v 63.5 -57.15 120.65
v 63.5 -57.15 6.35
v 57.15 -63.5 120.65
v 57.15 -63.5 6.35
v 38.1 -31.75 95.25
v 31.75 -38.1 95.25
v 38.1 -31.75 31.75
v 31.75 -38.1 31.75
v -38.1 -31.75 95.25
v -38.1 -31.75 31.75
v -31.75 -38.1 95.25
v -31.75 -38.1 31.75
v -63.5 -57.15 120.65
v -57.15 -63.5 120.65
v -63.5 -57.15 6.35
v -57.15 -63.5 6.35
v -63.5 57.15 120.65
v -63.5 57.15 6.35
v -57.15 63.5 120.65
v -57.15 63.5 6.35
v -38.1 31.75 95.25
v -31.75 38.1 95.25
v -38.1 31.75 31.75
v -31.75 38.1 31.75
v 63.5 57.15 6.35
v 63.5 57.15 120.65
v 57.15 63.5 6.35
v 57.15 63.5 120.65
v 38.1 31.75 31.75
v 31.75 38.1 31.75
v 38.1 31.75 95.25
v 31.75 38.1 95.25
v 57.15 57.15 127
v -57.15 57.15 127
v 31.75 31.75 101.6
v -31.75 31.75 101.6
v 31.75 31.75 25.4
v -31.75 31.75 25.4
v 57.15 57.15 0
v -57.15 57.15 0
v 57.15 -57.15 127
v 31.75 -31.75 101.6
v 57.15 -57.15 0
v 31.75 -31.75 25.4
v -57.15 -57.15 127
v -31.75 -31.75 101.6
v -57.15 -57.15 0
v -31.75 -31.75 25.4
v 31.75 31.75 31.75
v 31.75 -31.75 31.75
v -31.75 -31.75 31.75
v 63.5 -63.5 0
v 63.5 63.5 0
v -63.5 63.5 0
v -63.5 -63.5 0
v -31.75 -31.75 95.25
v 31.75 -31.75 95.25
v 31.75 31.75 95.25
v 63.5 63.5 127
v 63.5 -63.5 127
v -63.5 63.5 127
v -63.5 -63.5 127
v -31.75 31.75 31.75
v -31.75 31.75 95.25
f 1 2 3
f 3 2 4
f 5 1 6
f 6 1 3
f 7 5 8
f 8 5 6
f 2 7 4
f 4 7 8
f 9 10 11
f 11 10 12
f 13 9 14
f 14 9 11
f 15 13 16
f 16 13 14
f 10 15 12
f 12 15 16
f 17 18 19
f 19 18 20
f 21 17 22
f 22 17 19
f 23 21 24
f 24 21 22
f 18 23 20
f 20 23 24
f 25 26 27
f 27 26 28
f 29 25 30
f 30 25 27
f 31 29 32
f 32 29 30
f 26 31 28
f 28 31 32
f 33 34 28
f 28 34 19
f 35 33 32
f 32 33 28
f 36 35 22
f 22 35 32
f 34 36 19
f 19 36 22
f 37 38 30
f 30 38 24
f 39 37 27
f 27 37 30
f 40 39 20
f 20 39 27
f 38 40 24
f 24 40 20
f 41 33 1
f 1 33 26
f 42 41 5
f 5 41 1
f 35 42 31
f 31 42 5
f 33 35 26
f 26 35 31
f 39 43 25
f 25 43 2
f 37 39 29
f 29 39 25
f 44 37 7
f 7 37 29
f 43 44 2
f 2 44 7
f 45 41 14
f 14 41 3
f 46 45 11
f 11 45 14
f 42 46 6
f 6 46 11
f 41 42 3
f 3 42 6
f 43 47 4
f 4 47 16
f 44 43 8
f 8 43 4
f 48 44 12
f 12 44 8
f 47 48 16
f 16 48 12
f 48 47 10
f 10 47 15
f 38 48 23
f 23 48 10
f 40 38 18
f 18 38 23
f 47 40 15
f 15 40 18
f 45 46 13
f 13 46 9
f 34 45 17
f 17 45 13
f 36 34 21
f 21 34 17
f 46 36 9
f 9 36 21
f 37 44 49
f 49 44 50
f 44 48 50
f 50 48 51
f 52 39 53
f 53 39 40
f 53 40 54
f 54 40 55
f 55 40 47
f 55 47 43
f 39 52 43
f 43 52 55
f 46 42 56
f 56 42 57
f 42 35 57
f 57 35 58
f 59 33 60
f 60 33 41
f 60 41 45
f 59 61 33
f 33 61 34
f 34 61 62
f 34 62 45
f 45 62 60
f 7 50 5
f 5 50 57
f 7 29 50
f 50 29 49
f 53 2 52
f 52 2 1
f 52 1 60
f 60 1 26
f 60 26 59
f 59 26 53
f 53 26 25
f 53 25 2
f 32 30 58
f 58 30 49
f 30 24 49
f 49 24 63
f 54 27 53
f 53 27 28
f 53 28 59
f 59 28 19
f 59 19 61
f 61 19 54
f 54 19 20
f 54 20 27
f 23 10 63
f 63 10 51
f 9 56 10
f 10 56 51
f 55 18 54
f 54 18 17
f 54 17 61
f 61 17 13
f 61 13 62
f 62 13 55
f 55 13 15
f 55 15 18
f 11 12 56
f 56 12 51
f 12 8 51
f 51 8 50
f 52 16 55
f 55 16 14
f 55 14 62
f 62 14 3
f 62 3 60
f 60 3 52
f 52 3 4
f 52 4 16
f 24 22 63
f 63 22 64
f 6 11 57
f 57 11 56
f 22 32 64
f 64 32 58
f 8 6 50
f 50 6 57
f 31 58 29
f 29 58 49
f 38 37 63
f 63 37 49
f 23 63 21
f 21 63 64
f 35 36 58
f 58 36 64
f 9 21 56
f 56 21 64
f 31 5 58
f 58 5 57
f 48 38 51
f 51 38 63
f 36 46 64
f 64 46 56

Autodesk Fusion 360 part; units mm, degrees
sketch "Sketch1" plane through (0, 0, 0) normal (0, 0, 1) x (1, 0, 0)
  line L0 (63.5, 63.5) -> (-63.5, 63.5)
  line L1 (-63.5, 63.5) -> (-63.5, -63.5)
  line L2 (-63.5, -63.5) -> (63.5, -63.5)
  line L3 (63.5, -63.5) -> (63.5, 63.5)
  line L4 (63.5, 63.5) -> (-63.5, -63.5) construction
  line L5 (-63.5, 63.5) -> (63.5, -63.5) construction
extrude "Extrude1" add sketch "Sketch1" along normal blind 127
sketch "Sketch2" plane through (0, 0, 127) normal (0, 0, 1) x (-1, 0, 0)
  line L0 (-63.5, 63.5) -> (-63.5, -63.5)
  line L1 (-63.5, -63.5) -> (63.5, -63.5)
  line L2 (63.5, -63.5) -> (63.5, 63.5)
  line L3 (63.5, 63.5) -> (-63.5, 63.5)
  line L4 (31.75, 31.75) -> (-31.75, 31.75)
  line L5 (-31.75, 31.75) -> (-31.75, -31.75)
  line L6 (-31.75, -31.75) -> (31.75, -31.75)
  line L7 (31.75, -31.75) -> (31.75, 31.75)
  dimension "d3" = -31.75
sketch "Sketch3" plane through (0, -63.5, 0) normal (0, -1, 0) x (1, 0, 0)
  line L0 (-63.5, 0) -> (63.5, 0)
  line L1 (63.5, 0) -> (63.5, 127)
  line L2 (63.5, 127) -> (-63.5, 127)
  line L3 (-63.5, 127) -> (-63.5, 0)
  line L4 (-31.75, 31.75) -> (31.75, 31.75)
  line L5 (31.75, 31.75) -> (31.75, 95.25)
  line L6 (31.75, 95.25) -> (-31.75, 95.25)
  line L7 (-31.75, 95.25) -> (-31.75, 31.75)
  dimension "d4" = -31.75
sketch "Sketch4" plane through (0, 0, 0) normal (0, 0, -1) x (1, 0, 0)
  line L0 (63.5, -63.5) -> (63.5, 63.5)
  line L1 (63.5, 63.5) -> (-63.5, 63.5)
  line L2 (-63.5, 63.5) -> (-63.5, -63.5)
  line L3 (-63.5, -63.5) -> (63.5, -63.5)
sketch "Sketch5" plane through (-63.5, 0, 0) normal (-1, 0, 0) x (0, -1, 0)
  line L0 (-63.5, 0) -> (63.5, 0)
  line L1 (63.5, 0) -> (63.5, 127)
  line L2 (63.5, 127) -> (-63.5, 127)
  line L3 (-63.5, 127) -> (-63.5, 0)
  line L4 (-31.75, 31.75) -> (31.75, 31.75)
  line L5 (31.75, 31.75) -> (31.75, 95.25)
  line L6 (31.75, 95.25) -> (-31.75, 95.25)
  line L7 (-31.75, 95.25) -> (-31.75, 31.75)
  dimension "d5" = -31.75
extrude "Extrude2" cut sketch "Sketch2" against normal blind 127 contours L4 L5 L6 L7
extrude "Extrude3" cut sketch "Sketch5" against normal blind 127 contours L4 L5 L6 L7
extrude "Extrude4" cut sketch "Sketch3" against normal blind 127 contours L4 L5 L6 L7
chamfer "Chamfer1" distance 25.4 angle 45 4 edges at (0, -63.5, 95.25) (31.75, -63.5, 63.5) (0, -63.5, 31.75) (-31.75, -63.5, 63.5)
chamfer "Chamfer2" distance 25.4 angle 45 4 edges at (-63.5, 31.75, 63.5) (-63.5, 0, 95.25) (-63.5, -31.75, 63.5) (-63.5, 0, 31.75)
chamfer "Chamfer3" distance 25.4 angle 45 4 edges at (31.75, 63.5, 63.5) (0, 63.5, 95.25) (-31.75, 63.5, 63.5) (0, 63.5, 31.75)
chamfer "Chamfer4" distance 25.4 angle 45 4 edges at (63.5, 0, 95.25) (63.5, 31.75, 63.5) (63.5, 0, 31.75) (63.5, -31.75, 63.5)
chamfer "Chamfer5" distance 25.4 angle 45 4 edges at (-31.75, 0, 127) (0, 31.75, 127) (31.75, 0, 127) (0, -31.75, 127)
chamfer "Chamfer6" distance 25.4 angle 45 4 edges at (31.75, 0, 0) (0, 31.75, 0) (-31.75, 0, 0) (0, -31.75, 0)
extrude "Extrude5" cut 1 faces at (-55.0333, 10.5833, 112.1833) along direction (0.707107, 0, 0.707107) blind 12.7
extrude "Extrude6" cut 1 faces at (-55.0333, 10.5833, 14.8167) along direction (0.707107, 0, -0.707107) blind 12.7
extrude "Extrude7" cut 1 faces at (-10.5833, -55.0333, 14.8167) along direction (0, 0.707107, -0.707107) blind 12.7
extrude "Extrude8" cut 1 faces at (-10.5833, -55.0333, 112.1833) along direction (0, 0.707107, 0.707107) blind 12.7
extrude "Extrude9" cut 1 faces at (55.0333, 10.5833, 14.8167) along direction (-0.707107, 0, -0.707107) blind 12.7
extrude "Extrude10" cut 1 faces at (55.0333, -10.5833, 112.1833) along direction (-0.707107, 0, 0.707107) blind 12.7
extrude "Extrude11" cut 1 faces at (-10.5833, 55.0333, 14.8167) along direction (0, -0.707107, -0.707107) blind 12.7
extrude "Extrude12" cut 1 faces at (10.5833, 55.0333, 112.1833) along direction (0, -0.707107, 0.707107) blind 12.7
extrude "Extrude13" cut 1 faces at (48.6833, 55.0333, 74.0833) along direction (0.707107, -0.707107, 0) blind 12.7
extrude "Extrude14" cut 1 faces at (-48.6833, 55.0333, 74.0833) along direction (-0.707107, -0.707107, 0) blind 12.7
extrude "Extrude15" cut 1 faces at (-48.6833, -55.0333, 52.9167) along direction (-0.707107, 0.707107, 0) blind 12.7
extrude "Extrude16" cut 1 faces at (48.6833, -55.0333, 74.0833) along direction (0.707107, 0.707107, 0) blind 12.7
